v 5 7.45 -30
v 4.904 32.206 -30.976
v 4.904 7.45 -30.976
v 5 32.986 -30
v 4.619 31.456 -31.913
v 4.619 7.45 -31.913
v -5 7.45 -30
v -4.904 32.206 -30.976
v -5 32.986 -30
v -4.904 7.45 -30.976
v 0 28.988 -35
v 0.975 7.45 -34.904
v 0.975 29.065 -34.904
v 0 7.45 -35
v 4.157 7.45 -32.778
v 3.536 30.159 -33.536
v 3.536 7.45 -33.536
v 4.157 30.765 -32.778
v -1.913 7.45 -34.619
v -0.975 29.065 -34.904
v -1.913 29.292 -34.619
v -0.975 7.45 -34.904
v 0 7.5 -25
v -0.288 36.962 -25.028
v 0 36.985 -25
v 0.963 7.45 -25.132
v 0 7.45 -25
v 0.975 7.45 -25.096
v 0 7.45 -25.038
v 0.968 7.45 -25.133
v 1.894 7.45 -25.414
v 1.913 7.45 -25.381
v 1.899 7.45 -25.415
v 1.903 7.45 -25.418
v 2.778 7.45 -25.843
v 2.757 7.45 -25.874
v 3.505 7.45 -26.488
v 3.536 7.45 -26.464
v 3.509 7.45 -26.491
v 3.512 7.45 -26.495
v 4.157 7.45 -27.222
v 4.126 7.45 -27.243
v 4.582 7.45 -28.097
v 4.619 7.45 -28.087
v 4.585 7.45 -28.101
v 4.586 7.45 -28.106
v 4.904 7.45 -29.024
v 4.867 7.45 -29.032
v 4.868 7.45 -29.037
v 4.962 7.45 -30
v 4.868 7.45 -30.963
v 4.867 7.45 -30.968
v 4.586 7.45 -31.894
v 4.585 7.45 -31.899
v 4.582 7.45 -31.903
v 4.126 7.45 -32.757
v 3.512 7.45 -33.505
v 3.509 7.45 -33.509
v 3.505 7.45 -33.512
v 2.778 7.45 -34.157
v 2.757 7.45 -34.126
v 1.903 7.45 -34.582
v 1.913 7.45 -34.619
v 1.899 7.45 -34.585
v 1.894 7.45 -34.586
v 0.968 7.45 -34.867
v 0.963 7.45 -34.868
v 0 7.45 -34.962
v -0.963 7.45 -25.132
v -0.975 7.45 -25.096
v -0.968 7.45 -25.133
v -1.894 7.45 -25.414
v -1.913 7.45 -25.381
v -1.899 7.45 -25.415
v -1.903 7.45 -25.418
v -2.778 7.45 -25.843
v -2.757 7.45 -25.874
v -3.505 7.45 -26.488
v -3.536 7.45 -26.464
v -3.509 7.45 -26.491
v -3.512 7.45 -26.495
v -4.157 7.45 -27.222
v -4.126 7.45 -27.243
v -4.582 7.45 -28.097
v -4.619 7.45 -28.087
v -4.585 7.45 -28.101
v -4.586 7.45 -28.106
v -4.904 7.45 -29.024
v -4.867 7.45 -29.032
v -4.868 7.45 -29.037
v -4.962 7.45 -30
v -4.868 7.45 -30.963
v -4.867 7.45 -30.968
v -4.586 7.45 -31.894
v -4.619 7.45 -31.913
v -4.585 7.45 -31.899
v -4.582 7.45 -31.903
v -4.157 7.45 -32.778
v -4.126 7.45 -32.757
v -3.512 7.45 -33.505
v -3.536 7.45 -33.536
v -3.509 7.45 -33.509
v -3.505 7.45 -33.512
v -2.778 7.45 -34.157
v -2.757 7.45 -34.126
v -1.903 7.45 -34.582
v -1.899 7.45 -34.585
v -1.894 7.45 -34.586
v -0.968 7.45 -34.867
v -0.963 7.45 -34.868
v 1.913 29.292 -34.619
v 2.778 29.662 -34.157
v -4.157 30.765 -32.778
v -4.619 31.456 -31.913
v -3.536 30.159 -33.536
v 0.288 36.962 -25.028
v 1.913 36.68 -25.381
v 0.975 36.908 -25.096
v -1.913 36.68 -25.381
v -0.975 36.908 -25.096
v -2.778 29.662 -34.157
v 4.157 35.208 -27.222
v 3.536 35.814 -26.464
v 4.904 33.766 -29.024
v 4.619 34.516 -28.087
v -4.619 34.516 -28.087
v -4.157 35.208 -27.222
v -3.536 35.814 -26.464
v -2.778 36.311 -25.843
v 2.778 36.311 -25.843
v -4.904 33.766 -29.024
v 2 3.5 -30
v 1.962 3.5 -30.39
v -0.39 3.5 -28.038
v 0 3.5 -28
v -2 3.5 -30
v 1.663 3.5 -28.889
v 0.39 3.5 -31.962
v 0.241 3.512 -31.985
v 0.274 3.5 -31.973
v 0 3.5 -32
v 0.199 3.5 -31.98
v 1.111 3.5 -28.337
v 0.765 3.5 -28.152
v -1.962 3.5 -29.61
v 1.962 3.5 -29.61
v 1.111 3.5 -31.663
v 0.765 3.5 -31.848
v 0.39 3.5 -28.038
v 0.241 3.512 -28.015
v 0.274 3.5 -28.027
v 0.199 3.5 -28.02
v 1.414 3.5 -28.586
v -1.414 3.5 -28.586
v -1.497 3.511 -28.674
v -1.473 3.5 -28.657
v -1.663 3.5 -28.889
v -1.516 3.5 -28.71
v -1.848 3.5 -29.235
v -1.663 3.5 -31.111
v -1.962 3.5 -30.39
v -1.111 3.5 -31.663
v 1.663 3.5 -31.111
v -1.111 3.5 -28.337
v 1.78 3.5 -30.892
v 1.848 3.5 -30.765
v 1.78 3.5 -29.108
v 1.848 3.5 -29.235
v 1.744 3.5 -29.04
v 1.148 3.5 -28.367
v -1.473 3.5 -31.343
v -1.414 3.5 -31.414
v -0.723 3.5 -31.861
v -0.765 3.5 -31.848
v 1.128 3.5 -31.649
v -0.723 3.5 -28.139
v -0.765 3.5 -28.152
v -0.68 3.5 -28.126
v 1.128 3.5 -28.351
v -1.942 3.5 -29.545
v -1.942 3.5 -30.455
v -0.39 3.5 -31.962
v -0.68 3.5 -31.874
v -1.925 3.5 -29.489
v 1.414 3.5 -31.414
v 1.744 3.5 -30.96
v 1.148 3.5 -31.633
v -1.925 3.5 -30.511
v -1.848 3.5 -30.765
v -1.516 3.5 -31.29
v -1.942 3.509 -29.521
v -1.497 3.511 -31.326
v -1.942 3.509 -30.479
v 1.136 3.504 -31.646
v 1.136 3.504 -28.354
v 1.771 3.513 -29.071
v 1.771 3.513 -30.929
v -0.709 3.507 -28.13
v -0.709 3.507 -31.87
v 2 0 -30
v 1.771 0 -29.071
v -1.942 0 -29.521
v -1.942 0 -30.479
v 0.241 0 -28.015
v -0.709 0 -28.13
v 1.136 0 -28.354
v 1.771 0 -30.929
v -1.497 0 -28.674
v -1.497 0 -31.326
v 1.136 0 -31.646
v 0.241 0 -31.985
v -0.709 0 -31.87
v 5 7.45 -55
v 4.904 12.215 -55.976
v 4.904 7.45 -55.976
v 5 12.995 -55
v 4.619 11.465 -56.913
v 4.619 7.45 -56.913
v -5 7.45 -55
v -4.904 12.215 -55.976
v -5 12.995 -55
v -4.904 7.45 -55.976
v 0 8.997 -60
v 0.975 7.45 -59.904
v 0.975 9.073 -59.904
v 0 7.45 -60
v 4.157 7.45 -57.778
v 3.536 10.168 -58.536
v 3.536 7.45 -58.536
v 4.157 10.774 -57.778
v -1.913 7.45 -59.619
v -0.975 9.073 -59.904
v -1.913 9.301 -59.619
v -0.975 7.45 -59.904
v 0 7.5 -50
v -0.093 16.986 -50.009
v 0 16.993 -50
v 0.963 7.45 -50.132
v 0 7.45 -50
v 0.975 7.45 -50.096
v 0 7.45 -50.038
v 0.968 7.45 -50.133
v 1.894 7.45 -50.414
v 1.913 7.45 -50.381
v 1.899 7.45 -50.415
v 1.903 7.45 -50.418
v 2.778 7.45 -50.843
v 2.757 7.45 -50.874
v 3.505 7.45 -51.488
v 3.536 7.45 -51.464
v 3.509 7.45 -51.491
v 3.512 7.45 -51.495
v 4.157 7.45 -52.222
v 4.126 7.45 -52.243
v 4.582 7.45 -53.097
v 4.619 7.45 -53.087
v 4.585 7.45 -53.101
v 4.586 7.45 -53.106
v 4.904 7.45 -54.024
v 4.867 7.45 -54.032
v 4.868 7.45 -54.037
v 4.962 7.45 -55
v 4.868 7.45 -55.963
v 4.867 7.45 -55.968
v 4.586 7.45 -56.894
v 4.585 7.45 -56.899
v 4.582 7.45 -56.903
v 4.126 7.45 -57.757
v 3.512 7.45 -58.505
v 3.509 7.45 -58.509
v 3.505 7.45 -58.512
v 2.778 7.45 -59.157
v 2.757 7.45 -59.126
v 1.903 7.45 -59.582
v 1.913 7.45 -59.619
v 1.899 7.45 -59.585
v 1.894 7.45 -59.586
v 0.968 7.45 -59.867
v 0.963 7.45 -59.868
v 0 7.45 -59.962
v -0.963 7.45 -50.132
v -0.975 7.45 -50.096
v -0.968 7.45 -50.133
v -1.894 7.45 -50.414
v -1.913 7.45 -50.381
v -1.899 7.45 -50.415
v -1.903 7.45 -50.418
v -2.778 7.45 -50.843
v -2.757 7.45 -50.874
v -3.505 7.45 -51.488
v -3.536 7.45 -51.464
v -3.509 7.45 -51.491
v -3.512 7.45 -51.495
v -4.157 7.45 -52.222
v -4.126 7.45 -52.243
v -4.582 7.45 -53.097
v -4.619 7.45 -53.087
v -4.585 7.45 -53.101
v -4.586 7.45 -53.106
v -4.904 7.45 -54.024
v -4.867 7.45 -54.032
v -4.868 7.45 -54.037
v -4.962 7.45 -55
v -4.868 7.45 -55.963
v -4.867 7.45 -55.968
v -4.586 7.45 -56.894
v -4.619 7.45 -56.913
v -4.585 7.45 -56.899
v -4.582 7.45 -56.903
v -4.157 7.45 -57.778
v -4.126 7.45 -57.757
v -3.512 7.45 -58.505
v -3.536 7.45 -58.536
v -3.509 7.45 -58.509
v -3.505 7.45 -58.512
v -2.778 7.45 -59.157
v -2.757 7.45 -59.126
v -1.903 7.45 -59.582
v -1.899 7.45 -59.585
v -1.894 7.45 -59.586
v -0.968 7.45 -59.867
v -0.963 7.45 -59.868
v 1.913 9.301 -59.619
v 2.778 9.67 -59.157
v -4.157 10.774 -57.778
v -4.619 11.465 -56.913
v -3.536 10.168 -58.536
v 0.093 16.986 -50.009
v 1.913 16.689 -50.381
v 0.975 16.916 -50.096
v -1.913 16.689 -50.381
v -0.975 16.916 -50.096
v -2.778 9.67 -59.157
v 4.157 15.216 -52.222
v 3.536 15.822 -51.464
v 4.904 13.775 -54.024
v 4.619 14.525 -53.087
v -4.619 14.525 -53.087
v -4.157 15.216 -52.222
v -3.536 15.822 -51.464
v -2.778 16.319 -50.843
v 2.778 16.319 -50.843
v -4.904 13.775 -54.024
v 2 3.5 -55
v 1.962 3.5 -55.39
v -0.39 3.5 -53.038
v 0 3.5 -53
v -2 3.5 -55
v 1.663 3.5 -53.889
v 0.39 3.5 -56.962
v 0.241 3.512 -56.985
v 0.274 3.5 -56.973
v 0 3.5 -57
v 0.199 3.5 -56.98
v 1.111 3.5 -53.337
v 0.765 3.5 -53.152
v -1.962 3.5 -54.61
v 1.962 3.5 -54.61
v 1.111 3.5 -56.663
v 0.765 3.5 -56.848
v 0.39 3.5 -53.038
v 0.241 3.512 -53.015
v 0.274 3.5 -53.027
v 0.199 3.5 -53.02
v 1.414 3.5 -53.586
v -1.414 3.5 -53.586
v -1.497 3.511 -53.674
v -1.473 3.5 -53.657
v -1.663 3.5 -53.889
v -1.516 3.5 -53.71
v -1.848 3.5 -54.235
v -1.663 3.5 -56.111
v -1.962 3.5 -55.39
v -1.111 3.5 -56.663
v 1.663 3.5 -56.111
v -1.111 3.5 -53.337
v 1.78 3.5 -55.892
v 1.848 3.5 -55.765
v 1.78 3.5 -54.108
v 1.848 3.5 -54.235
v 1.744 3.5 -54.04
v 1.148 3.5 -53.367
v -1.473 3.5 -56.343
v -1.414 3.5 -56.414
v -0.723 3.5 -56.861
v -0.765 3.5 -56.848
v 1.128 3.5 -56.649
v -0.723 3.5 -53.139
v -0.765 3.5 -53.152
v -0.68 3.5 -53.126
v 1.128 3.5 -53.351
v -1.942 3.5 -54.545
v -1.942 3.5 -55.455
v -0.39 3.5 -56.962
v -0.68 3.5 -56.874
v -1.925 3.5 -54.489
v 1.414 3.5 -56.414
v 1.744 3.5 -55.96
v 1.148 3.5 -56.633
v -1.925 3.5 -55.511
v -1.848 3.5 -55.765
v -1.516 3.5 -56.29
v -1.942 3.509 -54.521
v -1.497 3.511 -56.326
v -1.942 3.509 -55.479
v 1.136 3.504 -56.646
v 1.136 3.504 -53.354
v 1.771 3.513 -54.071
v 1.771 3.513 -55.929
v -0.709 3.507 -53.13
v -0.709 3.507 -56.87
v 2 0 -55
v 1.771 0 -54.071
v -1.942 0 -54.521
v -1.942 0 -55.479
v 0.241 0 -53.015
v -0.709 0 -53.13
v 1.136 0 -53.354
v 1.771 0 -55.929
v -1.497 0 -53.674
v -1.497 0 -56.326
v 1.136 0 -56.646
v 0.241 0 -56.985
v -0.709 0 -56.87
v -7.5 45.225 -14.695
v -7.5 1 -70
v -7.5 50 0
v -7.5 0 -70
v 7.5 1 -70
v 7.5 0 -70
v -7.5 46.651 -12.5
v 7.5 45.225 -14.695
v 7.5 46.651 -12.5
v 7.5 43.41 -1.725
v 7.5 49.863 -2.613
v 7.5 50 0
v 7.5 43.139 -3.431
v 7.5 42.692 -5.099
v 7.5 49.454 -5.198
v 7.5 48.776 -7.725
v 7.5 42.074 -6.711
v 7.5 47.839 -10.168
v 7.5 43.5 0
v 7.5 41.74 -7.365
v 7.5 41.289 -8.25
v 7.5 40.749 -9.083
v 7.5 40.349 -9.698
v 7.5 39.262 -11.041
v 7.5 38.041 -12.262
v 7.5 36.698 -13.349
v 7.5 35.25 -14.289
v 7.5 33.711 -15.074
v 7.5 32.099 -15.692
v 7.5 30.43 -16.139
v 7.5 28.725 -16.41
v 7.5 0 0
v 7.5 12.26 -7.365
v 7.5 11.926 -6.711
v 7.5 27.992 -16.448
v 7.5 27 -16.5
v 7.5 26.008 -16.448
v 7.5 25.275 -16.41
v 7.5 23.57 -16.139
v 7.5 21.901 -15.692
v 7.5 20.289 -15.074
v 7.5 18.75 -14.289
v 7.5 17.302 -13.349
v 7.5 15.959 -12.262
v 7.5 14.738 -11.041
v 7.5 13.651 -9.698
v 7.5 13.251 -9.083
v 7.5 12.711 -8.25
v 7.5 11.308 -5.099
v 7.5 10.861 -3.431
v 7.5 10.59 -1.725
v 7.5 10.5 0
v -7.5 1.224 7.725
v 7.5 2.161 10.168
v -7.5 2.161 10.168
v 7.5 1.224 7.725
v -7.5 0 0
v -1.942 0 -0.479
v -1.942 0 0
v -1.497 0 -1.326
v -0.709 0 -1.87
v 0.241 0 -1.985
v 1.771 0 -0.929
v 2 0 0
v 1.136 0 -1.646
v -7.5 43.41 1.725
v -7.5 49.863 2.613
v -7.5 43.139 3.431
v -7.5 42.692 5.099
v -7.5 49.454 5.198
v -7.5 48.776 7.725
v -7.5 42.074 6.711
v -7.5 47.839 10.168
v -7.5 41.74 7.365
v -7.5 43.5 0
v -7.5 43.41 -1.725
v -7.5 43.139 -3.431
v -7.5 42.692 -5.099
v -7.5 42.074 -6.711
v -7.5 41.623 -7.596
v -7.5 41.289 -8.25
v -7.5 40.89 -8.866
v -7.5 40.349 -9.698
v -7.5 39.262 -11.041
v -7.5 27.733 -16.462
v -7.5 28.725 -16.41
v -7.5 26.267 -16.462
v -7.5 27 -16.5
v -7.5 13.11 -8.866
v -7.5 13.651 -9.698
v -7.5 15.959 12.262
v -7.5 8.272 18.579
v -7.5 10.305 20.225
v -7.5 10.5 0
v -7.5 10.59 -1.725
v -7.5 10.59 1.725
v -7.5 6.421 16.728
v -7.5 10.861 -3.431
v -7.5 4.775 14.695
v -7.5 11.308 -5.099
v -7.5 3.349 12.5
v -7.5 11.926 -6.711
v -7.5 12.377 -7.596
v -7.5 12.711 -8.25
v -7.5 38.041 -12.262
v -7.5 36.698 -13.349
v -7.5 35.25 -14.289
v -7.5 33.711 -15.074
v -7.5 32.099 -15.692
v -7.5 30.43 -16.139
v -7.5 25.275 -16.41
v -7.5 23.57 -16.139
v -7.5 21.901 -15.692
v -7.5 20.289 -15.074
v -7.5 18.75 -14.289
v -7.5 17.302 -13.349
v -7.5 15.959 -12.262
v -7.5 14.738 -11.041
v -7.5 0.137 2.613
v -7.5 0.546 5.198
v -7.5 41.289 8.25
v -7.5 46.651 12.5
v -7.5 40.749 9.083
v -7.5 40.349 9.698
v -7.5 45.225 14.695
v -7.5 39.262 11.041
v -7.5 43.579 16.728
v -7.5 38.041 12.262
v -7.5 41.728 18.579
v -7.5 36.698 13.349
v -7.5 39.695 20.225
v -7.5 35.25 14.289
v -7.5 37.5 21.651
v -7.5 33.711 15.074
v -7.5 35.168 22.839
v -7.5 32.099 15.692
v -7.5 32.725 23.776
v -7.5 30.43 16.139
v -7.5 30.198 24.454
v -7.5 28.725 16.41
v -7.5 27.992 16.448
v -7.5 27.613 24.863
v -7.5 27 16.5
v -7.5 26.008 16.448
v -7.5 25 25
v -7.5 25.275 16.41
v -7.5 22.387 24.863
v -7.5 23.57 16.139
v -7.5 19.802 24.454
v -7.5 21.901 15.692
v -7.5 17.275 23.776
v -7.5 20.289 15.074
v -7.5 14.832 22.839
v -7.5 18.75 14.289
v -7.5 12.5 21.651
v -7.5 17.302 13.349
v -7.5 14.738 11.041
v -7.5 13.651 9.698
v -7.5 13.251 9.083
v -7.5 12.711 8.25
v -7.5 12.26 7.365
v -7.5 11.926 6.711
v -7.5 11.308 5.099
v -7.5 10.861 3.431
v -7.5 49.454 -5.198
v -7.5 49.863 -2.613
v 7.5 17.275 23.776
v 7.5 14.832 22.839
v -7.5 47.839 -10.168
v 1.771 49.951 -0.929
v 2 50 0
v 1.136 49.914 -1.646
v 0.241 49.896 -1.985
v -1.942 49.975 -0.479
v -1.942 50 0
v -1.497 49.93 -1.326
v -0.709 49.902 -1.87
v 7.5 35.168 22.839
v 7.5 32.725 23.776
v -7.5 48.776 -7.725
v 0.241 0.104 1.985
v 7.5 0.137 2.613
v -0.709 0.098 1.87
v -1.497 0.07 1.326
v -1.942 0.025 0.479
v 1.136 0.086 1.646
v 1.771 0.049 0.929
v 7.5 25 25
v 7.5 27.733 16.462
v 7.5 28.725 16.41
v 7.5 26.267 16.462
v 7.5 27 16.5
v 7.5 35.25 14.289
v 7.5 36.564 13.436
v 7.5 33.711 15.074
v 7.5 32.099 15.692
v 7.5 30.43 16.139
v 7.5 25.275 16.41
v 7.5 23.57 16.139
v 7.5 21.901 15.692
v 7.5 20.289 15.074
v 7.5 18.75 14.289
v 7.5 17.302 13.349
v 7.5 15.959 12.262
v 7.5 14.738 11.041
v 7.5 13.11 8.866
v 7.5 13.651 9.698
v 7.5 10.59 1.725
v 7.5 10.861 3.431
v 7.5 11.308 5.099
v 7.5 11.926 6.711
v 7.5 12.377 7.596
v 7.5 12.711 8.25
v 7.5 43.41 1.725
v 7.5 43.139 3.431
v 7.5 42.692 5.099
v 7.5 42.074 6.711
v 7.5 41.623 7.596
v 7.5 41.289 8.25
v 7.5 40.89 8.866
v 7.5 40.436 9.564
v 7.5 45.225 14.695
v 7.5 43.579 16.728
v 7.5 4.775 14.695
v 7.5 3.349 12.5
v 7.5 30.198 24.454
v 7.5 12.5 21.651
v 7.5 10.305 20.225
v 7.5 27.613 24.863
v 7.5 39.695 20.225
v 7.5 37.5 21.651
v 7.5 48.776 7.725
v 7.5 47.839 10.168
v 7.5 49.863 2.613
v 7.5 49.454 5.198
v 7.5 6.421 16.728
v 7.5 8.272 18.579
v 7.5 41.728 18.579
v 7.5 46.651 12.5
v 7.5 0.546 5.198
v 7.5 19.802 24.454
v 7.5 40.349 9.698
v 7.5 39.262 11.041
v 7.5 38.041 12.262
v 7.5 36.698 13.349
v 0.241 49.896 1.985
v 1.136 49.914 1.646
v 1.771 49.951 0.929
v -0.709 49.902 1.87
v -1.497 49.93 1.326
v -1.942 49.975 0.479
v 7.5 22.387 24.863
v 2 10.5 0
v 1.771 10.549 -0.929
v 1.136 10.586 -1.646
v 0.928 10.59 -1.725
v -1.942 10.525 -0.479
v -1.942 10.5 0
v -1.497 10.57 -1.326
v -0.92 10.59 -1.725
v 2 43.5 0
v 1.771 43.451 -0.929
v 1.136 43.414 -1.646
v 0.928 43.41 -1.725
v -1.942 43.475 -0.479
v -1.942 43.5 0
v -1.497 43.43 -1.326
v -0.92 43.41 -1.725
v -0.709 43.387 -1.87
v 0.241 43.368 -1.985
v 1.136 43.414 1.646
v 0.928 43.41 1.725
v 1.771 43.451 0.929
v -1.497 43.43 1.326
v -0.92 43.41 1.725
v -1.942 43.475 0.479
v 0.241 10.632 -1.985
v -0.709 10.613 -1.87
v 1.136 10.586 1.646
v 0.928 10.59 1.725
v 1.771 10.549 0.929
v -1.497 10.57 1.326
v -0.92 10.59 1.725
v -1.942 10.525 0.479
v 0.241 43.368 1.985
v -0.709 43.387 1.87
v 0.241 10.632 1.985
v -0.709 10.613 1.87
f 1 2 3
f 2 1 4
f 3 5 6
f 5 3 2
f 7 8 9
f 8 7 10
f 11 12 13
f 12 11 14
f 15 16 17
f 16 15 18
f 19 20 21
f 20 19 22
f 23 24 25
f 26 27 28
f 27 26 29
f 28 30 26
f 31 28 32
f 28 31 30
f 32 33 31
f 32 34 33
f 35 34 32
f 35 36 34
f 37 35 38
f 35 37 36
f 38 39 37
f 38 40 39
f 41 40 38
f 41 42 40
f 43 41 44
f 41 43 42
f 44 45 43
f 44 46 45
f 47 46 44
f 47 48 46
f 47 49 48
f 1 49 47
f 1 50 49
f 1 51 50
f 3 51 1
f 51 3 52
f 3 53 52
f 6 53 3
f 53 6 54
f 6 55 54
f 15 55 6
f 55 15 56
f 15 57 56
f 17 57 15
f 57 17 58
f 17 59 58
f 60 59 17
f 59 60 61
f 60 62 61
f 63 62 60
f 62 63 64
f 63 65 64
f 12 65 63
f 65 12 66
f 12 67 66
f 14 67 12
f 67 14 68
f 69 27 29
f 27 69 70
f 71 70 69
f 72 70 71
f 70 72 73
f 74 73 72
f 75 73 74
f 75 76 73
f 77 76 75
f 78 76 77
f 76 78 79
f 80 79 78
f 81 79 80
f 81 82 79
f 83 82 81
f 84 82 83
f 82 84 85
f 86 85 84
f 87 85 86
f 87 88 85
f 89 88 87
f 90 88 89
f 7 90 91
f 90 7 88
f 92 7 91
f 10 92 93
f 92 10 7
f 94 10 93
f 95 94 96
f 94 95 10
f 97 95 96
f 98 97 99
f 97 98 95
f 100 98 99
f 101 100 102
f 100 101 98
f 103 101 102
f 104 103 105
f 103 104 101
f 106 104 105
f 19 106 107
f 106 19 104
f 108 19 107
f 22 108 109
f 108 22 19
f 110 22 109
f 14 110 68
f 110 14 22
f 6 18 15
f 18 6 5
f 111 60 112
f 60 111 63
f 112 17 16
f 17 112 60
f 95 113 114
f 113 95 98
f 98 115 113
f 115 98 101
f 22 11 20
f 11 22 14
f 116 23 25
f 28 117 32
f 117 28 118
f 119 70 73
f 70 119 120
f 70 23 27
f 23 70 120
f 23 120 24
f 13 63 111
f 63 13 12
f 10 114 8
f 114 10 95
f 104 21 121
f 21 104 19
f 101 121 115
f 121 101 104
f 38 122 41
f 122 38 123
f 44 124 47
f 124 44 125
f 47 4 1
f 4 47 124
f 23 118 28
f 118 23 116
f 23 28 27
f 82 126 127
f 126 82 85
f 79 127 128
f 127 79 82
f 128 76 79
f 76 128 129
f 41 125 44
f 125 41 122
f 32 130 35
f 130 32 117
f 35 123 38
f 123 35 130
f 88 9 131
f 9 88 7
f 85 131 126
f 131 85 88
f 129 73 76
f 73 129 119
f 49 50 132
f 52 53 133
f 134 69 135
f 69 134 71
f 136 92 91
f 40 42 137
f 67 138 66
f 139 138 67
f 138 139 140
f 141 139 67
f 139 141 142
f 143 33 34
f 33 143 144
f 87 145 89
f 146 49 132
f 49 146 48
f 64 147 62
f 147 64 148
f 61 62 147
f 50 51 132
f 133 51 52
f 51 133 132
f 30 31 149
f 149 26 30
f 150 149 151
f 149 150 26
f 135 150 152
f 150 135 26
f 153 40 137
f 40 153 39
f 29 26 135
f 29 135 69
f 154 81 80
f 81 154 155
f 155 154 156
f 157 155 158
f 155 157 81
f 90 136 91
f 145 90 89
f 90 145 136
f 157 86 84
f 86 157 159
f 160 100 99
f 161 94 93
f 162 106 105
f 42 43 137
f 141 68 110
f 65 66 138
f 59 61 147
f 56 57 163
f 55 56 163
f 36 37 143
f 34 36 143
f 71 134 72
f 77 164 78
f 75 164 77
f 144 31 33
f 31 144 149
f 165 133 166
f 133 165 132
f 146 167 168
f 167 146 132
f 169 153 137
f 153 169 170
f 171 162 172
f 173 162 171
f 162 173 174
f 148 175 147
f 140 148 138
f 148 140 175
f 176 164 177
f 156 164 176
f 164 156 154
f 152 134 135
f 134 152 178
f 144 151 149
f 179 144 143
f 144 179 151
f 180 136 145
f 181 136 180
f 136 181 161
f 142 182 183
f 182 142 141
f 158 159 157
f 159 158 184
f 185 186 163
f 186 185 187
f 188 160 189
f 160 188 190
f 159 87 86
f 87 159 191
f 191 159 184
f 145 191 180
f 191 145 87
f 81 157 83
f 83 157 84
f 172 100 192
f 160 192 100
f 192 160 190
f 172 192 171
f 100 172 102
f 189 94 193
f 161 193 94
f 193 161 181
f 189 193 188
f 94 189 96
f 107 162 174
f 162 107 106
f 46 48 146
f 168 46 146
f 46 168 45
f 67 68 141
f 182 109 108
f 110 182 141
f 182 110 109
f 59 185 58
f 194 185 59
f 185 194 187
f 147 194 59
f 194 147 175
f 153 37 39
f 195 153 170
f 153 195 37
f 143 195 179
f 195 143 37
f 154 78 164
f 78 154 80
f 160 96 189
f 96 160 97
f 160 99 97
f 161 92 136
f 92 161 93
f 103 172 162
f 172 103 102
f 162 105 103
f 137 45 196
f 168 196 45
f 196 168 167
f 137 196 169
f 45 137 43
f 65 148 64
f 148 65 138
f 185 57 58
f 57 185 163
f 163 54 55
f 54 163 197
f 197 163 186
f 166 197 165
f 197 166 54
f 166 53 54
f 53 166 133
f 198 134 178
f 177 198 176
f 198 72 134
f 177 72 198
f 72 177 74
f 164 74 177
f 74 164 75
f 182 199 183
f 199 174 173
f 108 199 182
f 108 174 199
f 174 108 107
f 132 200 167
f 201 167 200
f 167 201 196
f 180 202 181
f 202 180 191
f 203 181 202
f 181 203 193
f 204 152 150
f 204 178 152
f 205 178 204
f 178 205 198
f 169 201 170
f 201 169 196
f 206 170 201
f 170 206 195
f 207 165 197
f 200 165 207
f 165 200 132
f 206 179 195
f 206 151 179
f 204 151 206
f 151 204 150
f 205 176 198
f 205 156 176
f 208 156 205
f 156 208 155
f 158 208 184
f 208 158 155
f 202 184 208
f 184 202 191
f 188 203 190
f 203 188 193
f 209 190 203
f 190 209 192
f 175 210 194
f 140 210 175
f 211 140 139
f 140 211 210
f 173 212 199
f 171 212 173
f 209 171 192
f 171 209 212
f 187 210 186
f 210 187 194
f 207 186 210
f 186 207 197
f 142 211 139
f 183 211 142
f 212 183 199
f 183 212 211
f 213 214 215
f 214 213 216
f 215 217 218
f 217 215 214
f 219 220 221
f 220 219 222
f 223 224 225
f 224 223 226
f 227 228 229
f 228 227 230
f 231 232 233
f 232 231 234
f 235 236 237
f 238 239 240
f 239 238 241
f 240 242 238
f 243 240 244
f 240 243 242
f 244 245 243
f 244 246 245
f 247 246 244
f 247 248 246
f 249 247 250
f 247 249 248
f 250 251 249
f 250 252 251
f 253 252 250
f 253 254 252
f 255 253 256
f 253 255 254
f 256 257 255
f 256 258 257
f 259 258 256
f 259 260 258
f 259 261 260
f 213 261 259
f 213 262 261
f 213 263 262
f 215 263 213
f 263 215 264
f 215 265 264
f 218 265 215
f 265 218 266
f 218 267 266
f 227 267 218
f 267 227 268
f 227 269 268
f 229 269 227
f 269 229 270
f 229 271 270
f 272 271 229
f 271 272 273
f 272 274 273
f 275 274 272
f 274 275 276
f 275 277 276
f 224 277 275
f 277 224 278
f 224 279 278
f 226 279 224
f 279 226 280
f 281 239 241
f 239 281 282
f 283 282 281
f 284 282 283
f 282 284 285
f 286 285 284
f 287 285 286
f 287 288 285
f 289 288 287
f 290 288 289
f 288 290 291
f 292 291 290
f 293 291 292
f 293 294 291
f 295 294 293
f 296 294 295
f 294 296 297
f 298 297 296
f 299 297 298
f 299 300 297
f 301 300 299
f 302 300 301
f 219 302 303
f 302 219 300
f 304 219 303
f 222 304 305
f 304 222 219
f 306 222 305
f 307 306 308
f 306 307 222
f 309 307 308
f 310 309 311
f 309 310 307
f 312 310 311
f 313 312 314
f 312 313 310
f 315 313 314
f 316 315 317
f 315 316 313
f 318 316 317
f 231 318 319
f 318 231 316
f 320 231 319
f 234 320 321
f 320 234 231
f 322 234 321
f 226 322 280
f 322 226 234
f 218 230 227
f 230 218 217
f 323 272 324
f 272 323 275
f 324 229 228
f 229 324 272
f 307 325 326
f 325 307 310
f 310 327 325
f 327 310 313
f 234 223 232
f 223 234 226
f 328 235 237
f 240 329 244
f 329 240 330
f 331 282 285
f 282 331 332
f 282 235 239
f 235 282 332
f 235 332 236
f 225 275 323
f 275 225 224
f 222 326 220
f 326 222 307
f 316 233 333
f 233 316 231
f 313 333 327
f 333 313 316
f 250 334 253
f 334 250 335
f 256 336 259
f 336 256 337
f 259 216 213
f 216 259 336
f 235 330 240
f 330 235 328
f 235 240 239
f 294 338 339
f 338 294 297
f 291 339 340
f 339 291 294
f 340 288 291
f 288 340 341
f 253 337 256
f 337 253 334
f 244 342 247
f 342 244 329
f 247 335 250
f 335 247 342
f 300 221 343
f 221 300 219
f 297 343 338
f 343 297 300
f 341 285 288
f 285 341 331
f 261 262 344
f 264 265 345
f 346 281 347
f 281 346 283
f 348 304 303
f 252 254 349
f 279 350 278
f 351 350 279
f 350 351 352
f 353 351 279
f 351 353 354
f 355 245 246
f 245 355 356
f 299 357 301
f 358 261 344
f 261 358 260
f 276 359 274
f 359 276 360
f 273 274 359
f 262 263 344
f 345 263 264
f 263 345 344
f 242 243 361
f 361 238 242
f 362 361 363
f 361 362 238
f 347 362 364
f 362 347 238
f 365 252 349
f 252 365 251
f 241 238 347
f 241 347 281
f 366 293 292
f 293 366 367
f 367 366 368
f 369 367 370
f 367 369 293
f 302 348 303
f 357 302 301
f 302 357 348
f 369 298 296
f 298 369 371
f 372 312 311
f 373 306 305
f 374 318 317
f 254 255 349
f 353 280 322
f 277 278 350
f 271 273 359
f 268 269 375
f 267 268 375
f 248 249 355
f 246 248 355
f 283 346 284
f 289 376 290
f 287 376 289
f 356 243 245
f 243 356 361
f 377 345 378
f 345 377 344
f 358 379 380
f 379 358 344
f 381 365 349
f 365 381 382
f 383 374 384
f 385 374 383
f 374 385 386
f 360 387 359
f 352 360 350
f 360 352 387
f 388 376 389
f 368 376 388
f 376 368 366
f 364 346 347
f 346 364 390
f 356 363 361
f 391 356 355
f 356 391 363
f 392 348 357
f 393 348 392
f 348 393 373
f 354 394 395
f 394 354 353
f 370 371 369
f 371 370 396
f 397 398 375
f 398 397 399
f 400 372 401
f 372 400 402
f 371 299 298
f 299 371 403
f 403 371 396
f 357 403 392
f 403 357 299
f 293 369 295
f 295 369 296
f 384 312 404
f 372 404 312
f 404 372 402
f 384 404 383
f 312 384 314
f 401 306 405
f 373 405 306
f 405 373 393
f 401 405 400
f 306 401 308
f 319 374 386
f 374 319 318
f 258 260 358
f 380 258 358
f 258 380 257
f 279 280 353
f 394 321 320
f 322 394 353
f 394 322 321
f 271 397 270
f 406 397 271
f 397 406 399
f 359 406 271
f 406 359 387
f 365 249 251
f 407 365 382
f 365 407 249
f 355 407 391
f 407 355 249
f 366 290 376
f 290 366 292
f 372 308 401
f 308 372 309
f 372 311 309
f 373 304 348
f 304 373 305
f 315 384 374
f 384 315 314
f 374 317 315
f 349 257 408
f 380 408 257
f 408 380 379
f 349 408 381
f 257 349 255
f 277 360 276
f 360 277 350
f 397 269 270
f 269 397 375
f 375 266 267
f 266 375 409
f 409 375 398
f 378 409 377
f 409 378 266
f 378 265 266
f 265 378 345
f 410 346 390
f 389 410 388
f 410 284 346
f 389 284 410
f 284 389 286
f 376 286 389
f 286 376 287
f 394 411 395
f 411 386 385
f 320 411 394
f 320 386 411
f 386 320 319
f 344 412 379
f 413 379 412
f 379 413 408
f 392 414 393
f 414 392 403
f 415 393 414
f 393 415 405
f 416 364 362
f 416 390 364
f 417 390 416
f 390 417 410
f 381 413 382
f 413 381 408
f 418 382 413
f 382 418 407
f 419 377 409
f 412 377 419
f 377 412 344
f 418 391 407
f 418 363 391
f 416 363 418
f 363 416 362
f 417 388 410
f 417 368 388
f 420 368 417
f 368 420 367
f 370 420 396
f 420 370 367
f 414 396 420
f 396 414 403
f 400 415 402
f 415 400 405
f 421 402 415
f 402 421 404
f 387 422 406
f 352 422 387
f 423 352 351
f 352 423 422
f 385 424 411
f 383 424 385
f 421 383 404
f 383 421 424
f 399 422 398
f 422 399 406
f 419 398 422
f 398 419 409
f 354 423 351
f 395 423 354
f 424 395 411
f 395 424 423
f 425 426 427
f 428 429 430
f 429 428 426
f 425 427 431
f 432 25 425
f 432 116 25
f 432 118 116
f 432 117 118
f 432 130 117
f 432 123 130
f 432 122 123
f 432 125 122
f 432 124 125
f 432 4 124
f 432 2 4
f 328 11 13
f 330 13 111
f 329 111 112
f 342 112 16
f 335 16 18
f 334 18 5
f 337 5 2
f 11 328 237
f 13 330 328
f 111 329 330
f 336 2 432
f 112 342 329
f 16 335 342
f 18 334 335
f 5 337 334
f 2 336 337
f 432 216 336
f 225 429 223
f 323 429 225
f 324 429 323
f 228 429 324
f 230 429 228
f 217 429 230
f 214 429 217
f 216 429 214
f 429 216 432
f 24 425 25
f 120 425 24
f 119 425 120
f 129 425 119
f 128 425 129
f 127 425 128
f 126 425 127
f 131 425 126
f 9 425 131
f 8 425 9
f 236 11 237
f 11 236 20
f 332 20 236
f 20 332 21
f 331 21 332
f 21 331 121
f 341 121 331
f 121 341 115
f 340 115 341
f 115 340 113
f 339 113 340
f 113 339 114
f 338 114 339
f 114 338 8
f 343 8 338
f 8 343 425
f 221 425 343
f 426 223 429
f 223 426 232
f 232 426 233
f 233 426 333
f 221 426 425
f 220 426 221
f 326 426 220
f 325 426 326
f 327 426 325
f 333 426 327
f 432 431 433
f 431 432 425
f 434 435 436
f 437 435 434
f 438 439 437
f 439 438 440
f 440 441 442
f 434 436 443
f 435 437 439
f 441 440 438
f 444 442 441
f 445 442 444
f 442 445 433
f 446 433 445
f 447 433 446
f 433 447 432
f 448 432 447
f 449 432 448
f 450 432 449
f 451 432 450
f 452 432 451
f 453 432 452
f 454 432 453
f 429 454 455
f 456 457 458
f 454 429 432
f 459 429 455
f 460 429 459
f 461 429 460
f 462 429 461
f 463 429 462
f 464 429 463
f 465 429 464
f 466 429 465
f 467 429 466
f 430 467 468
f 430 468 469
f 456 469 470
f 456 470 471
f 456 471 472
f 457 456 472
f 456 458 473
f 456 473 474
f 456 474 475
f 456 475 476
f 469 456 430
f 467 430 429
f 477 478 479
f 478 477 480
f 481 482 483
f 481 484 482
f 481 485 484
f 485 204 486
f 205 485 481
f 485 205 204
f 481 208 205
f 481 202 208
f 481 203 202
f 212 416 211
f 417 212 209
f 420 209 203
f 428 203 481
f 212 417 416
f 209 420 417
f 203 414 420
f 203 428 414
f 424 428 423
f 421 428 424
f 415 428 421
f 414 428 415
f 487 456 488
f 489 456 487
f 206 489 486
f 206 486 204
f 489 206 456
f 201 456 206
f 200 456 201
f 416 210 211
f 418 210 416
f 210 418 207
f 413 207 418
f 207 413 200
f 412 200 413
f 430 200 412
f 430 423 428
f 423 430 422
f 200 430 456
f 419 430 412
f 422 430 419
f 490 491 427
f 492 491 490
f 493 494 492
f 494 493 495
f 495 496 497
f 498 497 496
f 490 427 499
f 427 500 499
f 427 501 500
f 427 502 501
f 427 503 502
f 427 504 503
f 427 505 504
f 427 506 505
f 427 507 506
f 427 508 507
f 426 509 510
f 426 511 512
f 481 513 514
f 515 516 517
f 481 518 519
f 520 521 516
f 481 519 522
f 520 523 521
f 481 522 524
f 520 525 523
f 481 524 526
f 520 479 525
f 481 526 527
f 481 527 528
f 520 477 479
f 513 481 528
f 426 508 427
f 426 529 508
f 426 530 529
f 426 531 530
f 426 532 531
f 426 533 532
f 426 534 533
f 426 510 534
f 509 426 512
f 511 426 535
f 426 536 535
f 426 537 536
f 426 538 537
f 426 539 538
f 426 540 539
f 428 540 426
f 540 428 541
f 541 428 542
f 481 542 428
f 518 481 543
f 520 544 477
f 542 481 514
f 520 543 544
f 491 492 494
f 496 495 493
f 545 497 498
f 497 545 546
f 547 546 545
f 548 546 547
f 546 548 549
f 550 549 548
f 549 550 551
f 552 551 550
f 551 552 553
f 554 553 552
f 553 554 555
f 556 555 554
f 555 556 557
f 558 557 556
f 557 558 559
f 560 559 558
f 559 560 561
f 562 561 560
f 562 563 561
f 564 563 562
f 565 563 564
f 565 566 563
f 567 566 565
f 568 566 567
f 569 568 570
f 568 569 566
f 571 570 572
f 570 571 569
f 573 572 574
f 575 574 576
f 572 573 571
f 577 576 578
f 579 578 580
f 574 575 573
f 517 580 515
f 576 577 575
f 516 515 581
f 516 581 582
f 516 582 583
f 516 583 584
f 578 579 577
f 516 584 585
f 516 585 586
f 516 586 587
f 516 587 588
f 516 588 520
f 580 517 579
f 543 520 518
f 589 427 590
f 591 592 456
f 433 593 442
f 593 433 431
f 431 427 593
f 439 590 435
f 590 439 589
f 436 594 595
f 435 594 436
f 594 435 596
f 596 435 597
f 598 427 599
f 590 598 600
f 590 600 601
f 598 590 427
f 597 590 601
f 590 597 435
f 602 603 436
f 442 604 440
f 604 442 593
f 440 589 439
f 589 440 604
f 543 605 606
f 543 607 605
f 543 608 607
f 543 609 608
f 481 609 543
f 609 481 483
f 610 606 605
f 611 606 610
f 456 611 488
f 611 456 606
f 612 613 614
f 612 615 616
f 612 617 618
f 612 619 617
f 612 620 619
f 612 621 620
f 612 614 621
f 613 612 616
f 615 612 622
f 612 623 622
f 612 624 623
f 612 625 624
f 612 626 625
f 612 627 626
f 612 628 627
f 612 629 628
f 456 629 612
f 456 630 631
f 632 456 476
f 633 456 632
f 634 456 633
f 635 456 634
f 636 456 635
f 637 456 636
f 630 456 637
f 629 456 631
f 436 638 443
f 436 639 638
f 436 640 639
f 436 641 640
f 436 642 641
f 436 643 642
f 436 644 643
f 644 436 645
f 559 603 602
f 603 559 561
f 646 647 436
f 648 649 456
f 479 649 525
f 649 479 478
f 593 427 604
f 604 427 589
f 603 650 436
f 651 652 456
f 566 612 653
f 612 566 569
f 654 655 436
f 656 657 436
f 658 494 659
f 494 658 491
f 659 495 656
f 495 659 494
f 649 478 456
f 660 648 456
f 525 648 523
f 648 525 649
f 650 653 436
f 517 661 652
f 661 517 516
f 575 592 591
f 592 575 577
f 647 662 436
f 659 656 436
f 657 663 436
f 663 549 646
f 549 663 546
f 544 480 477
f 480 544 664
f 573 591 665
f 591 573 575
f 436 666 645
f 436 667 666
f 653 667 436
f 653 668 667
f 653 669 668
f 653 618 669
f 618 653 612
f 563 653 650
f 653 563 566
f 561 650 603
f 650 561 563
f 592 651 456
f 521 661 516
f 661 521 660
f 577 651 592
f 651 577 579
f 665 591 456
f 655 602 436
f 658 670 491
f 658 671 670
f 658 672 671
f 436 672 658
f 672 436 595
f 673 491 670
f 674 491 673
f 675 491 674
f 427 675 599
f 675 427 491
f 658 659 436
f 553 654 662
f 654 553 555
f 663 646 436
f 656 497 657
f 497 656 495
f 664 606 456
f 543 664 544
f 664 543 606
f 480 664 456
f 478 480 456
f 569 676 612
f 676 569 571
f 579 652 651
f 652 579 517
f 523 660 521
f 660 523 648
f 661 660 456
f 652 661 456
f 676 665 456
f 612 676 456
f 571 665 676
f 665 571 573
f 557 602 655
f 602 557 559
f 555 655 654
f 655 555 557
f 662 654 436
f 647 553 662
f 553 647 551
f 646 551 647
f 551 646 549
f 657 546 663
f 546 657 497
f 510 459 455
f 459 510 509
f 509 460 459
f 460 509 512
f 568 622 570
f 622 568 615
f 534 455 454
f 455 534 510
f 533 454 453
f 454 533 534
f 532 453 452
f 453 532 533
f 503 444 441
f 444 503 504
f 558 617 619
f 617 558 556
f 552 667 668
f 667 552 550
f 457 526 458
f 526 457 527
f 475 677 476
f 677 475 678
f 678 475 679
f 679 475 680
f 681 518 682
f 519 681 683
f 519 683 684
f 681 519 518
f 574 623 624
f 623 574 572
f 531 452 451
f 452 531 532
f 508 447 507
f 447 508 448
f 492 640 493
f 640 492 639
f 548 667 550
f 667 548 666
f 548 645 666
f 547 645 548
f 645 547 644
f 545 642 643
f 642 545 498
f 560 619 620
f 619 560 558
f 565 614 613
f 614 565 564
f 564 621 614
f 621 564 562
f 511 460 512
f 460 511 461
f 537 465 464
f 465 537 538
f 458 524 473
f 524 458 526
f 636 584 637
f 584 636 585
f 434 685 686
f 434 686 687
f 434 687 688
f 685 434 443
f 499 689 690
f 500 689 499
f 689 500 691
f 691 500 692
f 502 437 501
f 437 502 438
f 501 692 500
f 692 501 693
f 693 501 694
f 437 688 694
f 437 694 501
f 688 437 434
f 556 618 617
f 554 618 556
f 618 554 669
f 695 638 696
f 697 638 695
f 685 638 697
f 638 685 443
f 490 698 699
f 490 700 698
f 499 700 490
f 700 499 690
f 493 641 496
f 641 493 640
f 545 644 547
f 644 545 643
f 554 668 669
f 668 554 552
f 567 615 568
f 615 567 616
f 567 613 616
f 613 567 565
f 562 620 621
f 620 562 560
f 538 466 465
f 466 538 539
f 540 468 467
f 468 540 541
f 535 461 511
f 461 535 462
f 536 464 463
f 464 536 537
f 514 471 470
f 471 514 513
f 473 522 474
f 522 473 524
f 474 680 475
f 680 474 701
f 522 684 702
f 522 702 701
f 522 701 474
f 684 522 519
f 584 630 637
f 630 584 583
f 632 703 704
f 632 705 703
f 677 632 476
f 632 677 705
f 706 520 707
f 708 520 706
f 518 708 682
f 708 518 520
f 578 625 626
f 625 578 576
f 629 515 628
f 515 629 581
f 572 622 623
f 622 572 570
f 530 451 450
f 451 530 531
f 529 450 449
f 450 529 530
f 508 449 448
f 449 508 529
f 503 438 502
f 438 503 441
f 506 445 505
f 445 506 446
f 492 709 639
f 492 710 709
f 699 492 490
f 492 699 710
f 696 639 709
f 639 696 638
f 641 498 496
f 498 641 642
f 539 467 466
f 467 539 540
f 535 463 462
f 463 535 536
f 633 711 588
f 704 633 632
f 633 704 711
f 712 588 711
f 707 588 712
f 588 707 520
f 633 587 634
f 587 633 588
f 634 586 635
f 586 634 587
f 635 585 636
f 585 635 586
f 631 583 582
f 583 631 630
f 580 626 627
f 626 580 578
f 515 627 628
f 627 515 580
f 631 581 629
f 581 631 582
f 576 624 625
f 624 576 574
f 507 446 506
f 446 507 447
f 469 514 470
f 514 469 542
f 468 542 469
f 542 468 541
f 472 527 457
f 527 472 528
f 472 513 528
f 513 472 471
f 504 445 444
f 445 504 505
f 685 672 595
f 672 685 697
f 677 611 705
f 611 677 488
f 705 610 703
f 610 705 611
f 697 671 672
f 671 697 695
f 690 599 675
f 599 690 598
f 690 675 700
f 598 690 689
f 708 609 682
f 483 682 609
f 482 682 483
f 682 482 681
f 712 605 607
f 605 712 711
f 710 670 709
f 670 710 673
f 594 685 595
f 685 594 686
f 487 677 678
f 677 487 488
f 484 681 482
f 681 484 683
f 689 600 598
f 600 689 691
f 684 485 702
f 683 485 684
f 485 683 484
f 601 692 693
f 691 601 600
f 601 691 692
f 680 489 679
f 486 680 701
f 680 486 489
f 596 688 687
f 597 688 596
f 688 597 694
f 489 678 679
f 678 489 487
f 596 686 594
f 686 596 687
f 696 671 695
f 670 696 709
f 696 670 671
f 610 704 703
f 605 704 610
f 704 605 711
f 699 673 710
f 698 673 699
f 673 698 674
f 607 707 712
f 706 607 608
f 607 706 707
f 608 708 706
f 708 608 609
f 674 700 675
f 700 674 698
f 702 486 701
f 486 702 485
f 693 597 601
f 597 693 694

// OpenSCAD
$fs = 1;
$fa = 6;

module rod(args) {
  translate([0, 27, 0])
  _rx() cylinder(d=33, h=100, center=true);
}

difference() {
  hull() {
    translate([0, 25, 0]) _rx() cylinder(d=50, h=15, center=true);
    translate([0, 1/2, -70/2]) cube(size=[15, 1, 70], center=true);
  }
  rod();
  translate([0, 0, -30]) screw();
  translate([0, 0, -55]) screw();
  _ry() cylinder(d=4, h=1000, center=true);
}

module screw(args) {
  _ry() {
    translate([0, 0, -7.45]) rotate([180, 0, 0]) cylinder(d=10, h=100, center=false);
    translate([0, 0, -7.5]) cylinder(d1=10, d2=4, h=4, center=false);
    cylinder(d=4, h=100, center=true);
  }
}

module _ry() {
    rotate([90,0]) children();
}
module _rx() {
    rotate([0,90]) children();
}
